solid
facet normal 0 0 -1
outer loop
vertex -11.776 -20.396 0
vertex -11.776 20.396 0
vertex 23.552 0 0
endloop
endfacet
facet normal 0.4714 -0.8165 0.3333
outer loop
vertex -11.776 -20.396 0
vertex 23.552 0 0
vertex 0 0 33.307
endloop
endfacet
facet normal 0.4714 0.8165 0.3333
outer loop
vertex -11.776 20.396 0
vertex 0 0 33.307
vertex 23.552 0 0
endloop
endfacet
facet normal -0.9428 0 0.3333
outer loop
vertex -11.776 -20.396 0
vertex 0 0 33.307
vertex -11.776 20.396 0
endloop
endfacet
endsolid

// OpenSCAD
$fn=100;

volume=8000.0;

a=pow(volume*6*sqrt(2), 1/3);
v=pow(a,3)/(6*sqrt(2));
echo("a=", a);
echo("v=", v);

x1=sqrt(3)/3*a;
x=sqrt(3)/6*a;
y=a/2;
h=sqrt(6)/3*a;

echo("x=", x);
echo("y=", y);

polyhedron(
  points=[ [x1,0,0],[-x,y,0],[-x,-y,0], // the 3 points at base
           [0,0,h]  ],    // the apex point 
  faces=[ [3,1,0],[0,2,3],[3,2,1], // each triangle side
              [0,1,2] ]    // two triangle for base
 );
